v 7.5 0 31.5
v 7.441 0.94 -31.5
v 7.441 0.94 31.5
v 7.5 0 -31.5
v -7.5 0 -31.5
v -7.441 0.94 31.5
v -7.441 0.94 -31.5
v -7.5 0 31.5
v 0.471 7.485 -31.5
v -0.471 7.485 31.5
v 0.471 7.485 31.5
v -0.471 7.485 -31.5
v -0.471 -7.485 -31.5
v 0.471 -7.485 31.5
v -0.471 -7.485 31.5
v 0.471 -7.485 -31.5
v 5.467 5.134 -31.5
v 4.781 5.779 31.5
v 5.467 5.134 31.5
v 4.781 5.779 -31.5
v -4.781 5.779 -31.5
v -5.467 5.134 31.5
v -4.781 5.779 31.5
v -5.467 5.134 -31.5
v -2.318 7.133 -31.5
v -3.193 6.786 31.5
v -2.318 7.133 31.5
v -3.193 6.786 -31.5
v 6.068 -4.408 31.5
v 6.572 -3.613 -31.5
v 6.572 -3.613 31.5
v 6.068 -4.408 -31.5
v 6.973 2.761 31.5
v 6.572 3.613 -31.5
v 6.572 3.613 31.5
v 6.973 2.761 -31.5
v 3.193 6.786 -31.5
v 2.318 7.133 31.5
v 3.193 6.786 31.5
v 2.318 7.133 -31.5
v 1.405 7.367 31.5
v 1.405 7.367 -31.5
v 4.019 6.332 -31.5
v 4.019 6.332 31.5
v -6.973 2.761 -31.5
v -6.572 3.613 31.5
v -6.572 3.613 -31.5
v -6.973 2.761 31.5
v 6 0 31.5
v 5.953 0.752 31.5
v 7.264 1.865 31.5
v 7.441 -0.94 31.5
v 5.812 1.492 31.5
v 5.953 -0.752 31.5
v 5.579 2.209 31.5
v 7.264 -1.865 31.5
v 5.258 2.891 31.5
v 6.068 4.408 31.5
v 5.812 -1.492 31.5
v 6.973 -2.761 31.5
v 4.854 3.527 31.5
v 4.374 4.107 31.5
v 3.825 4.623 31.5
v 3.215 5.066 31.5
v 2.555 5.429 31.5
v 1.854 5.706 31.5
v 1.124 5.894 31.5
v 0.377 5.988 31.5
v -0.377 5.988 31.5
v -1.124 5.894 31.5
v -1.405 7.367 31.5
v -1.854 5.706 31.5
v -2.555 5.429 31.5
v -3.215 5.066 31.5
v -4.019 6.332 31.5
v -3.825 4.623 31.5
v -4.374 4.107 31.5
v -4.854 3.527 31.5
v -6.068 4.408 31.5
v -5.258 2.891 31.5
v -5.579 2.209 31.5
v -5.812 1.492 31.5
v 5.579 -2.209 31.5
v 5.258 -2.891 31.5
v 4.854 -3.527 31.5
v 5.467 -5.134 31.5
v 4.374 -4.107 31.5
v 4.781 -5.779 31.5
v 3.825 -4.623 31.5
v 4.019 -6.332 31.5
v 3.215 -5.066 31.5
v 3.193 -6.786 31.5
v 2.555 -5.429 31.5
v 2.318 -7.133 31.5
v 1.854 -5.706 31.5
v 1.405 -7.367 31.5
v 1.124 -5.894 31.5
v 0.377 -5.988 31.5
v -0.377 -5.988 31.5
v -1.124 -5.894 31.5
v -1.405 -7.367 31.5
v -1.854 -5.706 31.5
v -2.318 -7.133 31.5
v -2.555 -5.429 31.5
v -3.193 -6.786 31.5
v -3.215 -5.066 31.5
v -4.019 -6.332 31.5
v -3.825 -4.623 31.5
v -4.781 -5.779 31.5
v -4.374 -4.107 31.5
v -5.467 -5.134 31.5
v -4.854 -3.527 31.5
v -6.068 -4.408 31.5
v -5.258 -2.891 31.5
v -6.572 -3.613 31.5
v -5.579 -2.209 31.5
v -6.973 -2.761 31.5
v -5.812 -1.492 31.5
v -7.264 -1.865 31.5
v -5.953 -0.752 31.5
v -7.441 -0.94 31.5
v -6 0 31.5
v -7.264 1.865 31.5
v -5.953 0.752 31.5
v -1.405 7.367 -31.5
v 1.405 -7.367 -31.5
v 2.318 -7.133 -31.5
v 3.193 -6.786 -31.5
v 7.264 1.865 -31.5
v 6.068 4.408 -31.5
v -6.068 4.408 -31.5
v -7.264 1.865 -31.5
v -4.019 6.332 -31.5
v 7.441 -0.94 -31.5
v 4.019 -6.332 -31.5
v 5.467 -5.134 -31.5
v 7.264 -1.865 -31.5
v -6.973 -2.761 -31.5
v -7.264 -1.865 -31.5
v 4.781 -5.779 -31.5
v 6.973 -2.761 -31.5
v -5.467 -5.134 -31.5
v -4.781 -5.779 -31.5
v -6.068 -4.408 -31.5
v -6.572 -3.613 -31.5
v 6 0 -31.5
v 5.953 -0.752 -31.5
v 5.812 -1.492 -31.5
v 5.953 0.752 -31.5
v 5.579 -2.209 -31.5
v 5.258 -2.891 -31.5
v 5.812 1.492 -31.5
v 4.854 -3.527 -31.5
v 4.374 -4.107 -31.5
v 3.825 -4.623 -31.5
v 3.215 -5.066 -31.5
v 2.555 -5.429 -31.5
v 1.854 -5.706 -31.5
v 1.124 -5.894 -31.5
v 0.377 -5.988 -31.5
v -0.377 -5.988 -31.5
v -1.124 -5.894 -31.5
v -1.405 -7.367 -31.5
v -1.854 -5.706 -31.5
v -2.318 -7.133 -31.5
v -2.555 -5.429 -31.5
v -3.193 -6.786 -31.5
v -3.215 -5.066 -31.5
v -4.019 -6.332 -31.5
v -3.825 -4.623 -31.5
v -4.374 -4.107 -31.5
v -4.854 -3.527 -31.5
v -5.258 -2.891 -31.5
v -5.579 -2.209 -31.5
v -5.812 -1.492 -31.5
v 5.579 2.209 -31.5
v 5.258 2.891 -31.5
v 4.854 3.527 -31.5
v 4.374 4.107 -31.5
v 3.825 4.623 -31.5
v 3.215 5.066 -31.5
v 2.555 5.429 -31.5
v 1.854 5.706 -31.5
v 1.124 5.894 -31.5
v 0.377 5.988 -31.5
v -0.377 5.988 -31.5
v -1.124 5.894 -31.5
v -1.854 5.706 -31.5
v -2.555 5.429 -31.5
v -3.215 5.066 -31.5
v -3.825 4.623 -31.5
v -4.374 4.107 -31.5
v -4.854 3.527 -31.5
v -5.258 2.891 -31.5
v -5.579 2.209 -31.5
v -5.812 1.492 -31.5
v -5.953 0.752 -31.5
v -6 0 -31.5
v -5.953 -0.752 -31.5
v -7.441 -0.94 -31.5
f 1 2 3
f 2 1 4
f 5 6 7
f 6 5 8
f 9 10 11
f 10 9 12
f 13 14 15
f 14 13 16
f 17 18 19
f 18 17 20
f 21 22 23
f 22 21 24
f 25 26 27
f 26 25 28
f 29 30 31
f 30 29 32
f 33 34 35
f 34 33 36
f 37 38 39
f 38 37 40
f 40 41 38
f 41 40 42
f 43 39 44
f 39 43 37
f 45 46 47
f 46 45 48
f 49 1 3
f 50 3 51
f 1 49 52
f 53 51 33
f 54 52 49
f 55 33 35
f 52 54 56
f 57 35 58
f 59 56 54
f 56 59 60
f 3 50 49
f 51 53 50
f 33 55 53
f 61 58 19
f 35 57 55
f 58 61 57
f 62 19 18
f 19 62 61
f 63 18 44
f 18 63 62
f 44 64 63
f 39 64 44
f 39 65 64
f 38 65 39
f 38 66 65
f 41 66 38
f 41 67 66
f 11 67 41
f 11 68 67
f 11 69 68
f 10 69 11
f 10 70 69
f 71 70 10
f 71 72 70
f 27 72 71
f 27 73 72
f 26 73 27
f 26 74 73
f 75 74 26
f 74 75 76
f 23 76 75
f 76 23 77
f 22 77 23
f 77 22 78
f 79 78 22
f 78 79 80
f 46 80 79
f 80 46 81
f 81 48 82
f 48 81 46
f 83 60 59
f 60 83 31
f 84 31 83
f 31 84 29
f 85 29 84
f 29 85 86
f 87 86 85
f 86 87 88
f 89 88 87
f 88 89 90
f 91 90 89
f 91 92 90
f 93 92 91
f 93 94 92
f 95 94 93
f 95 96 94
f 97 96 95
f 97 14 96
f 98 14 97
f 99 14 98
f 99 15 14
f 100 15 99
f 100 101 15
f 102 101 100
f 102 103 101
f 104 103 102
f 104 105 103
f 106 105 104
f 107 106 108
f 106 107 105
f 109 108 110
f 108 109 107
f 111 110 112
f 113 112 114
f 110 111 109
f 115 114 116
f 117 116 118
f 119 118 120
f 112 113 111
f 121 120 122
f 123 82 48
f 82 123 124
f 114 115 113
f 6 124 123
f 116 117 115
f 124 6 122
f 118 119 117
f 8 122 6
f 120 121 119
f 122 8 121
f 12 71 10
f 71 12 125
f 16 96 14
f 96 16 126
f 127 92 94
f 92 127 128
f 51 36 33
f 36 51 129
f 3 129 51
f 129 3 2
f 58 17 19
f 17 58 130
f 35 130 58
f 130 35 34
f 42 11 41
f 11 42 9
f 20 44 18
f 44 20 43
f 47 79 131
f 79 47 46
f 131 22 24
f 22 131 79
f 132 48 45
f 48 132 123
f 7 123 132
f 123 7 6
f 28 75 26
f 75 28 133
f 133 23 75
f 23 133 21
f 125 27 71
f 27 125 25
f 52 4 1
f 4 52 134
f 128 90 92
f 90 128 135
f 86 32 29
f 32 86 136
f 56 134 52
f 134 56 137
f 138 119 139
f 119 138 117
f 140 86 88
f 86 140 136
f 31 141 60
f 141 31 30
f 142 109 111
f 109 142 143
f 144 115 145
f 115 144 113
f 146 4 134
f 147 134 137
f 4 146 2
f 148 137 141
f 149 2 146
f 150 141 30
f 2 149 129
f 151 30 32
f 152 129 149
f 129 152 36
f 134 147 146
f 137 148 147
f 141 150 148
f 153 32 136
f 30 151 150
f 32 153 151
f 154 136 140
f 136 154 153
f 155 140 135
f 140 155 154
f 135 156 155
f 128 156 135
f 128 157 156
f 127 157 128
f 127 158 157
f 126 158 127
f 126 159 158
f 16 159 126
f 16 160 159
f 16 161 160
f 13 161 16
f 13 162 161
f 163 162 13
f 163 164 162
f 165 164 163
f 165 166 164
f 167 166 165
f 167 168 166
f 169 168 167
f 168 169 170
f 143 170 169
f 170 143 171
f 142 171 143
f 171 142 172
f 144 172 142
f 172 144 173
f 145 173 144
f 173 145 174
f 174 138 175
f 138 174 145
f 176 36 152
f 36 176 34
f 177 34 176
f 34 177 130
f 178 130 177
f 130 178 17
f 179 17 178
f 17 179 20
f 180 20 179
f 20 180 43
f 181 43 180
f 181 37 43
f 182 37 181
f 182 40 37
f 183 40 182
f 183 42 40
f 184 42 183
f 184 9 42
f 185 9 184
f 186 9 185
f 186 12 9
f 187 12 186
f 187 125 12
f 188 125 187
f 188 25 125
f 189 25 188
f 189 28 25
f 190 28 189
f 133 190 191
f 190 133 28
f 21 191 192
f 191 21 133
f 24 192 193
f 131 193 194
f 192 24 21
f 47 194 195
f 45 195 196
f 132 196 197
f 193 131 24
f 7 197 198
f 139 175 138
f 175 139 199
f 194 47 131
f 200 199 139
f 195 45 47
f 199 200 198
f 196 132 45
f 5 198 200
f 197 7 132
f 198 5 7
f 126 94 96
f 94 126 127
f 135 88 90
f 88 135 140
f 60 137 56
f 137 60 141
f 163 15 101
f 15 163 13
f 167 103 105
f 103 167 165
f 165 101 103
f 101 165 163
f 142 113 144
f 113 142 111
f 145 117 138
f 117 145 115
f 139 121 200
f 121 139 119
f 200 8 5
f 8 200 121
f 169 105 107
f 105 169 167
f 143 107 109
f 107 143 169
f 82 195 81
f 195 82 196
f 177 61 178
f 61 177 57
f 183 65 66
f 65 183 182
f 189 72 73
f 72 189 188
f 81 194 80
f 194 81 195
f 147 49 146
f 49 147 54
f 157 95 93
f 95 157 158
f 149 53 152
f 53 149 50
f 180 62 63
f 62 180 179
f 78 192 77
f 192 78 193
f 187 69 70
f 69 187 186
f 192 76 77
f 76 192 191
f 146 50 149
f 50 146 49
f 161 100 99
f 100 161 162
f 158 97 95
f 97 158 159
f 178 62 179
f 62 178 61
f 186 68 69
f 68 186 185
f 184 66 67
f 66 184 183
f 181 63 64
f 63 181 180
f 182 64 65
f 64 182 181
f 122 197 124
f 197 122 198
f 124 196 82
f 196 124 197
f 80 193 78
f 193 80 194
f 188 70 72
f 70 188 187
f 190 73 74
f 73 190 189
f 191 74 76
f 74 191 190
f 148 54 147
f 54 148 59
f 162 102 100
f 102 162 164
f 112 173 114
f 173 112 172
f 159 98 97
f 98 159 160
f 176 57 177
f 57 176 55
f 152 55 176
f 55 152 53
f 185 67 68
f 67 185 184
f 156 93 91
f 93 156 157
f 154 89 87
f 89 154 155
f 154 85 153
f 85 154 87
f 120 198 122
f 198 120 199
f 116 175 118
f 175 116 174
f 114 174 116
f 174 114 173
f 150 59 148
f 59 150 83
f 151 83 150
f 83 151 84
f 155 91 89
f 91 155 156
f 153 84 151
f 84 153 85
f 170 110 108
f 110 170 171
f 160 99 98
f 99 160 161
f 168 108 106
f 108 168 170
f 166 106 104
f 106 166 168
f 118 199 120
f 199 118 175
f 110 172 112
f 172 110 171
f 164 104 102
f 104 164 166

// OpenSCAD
$fn = 50;


difference() {
	union() {
		translate(v = [0, 0, -31.5000000000]) {
			cylinder(h = 63, r = 7.5000000000);
		}
	}
	union() {
		translate(v = [0, 0, -100.0000000000]) {
			cylinder(h = 200, r = 6);
		}
	}
}
